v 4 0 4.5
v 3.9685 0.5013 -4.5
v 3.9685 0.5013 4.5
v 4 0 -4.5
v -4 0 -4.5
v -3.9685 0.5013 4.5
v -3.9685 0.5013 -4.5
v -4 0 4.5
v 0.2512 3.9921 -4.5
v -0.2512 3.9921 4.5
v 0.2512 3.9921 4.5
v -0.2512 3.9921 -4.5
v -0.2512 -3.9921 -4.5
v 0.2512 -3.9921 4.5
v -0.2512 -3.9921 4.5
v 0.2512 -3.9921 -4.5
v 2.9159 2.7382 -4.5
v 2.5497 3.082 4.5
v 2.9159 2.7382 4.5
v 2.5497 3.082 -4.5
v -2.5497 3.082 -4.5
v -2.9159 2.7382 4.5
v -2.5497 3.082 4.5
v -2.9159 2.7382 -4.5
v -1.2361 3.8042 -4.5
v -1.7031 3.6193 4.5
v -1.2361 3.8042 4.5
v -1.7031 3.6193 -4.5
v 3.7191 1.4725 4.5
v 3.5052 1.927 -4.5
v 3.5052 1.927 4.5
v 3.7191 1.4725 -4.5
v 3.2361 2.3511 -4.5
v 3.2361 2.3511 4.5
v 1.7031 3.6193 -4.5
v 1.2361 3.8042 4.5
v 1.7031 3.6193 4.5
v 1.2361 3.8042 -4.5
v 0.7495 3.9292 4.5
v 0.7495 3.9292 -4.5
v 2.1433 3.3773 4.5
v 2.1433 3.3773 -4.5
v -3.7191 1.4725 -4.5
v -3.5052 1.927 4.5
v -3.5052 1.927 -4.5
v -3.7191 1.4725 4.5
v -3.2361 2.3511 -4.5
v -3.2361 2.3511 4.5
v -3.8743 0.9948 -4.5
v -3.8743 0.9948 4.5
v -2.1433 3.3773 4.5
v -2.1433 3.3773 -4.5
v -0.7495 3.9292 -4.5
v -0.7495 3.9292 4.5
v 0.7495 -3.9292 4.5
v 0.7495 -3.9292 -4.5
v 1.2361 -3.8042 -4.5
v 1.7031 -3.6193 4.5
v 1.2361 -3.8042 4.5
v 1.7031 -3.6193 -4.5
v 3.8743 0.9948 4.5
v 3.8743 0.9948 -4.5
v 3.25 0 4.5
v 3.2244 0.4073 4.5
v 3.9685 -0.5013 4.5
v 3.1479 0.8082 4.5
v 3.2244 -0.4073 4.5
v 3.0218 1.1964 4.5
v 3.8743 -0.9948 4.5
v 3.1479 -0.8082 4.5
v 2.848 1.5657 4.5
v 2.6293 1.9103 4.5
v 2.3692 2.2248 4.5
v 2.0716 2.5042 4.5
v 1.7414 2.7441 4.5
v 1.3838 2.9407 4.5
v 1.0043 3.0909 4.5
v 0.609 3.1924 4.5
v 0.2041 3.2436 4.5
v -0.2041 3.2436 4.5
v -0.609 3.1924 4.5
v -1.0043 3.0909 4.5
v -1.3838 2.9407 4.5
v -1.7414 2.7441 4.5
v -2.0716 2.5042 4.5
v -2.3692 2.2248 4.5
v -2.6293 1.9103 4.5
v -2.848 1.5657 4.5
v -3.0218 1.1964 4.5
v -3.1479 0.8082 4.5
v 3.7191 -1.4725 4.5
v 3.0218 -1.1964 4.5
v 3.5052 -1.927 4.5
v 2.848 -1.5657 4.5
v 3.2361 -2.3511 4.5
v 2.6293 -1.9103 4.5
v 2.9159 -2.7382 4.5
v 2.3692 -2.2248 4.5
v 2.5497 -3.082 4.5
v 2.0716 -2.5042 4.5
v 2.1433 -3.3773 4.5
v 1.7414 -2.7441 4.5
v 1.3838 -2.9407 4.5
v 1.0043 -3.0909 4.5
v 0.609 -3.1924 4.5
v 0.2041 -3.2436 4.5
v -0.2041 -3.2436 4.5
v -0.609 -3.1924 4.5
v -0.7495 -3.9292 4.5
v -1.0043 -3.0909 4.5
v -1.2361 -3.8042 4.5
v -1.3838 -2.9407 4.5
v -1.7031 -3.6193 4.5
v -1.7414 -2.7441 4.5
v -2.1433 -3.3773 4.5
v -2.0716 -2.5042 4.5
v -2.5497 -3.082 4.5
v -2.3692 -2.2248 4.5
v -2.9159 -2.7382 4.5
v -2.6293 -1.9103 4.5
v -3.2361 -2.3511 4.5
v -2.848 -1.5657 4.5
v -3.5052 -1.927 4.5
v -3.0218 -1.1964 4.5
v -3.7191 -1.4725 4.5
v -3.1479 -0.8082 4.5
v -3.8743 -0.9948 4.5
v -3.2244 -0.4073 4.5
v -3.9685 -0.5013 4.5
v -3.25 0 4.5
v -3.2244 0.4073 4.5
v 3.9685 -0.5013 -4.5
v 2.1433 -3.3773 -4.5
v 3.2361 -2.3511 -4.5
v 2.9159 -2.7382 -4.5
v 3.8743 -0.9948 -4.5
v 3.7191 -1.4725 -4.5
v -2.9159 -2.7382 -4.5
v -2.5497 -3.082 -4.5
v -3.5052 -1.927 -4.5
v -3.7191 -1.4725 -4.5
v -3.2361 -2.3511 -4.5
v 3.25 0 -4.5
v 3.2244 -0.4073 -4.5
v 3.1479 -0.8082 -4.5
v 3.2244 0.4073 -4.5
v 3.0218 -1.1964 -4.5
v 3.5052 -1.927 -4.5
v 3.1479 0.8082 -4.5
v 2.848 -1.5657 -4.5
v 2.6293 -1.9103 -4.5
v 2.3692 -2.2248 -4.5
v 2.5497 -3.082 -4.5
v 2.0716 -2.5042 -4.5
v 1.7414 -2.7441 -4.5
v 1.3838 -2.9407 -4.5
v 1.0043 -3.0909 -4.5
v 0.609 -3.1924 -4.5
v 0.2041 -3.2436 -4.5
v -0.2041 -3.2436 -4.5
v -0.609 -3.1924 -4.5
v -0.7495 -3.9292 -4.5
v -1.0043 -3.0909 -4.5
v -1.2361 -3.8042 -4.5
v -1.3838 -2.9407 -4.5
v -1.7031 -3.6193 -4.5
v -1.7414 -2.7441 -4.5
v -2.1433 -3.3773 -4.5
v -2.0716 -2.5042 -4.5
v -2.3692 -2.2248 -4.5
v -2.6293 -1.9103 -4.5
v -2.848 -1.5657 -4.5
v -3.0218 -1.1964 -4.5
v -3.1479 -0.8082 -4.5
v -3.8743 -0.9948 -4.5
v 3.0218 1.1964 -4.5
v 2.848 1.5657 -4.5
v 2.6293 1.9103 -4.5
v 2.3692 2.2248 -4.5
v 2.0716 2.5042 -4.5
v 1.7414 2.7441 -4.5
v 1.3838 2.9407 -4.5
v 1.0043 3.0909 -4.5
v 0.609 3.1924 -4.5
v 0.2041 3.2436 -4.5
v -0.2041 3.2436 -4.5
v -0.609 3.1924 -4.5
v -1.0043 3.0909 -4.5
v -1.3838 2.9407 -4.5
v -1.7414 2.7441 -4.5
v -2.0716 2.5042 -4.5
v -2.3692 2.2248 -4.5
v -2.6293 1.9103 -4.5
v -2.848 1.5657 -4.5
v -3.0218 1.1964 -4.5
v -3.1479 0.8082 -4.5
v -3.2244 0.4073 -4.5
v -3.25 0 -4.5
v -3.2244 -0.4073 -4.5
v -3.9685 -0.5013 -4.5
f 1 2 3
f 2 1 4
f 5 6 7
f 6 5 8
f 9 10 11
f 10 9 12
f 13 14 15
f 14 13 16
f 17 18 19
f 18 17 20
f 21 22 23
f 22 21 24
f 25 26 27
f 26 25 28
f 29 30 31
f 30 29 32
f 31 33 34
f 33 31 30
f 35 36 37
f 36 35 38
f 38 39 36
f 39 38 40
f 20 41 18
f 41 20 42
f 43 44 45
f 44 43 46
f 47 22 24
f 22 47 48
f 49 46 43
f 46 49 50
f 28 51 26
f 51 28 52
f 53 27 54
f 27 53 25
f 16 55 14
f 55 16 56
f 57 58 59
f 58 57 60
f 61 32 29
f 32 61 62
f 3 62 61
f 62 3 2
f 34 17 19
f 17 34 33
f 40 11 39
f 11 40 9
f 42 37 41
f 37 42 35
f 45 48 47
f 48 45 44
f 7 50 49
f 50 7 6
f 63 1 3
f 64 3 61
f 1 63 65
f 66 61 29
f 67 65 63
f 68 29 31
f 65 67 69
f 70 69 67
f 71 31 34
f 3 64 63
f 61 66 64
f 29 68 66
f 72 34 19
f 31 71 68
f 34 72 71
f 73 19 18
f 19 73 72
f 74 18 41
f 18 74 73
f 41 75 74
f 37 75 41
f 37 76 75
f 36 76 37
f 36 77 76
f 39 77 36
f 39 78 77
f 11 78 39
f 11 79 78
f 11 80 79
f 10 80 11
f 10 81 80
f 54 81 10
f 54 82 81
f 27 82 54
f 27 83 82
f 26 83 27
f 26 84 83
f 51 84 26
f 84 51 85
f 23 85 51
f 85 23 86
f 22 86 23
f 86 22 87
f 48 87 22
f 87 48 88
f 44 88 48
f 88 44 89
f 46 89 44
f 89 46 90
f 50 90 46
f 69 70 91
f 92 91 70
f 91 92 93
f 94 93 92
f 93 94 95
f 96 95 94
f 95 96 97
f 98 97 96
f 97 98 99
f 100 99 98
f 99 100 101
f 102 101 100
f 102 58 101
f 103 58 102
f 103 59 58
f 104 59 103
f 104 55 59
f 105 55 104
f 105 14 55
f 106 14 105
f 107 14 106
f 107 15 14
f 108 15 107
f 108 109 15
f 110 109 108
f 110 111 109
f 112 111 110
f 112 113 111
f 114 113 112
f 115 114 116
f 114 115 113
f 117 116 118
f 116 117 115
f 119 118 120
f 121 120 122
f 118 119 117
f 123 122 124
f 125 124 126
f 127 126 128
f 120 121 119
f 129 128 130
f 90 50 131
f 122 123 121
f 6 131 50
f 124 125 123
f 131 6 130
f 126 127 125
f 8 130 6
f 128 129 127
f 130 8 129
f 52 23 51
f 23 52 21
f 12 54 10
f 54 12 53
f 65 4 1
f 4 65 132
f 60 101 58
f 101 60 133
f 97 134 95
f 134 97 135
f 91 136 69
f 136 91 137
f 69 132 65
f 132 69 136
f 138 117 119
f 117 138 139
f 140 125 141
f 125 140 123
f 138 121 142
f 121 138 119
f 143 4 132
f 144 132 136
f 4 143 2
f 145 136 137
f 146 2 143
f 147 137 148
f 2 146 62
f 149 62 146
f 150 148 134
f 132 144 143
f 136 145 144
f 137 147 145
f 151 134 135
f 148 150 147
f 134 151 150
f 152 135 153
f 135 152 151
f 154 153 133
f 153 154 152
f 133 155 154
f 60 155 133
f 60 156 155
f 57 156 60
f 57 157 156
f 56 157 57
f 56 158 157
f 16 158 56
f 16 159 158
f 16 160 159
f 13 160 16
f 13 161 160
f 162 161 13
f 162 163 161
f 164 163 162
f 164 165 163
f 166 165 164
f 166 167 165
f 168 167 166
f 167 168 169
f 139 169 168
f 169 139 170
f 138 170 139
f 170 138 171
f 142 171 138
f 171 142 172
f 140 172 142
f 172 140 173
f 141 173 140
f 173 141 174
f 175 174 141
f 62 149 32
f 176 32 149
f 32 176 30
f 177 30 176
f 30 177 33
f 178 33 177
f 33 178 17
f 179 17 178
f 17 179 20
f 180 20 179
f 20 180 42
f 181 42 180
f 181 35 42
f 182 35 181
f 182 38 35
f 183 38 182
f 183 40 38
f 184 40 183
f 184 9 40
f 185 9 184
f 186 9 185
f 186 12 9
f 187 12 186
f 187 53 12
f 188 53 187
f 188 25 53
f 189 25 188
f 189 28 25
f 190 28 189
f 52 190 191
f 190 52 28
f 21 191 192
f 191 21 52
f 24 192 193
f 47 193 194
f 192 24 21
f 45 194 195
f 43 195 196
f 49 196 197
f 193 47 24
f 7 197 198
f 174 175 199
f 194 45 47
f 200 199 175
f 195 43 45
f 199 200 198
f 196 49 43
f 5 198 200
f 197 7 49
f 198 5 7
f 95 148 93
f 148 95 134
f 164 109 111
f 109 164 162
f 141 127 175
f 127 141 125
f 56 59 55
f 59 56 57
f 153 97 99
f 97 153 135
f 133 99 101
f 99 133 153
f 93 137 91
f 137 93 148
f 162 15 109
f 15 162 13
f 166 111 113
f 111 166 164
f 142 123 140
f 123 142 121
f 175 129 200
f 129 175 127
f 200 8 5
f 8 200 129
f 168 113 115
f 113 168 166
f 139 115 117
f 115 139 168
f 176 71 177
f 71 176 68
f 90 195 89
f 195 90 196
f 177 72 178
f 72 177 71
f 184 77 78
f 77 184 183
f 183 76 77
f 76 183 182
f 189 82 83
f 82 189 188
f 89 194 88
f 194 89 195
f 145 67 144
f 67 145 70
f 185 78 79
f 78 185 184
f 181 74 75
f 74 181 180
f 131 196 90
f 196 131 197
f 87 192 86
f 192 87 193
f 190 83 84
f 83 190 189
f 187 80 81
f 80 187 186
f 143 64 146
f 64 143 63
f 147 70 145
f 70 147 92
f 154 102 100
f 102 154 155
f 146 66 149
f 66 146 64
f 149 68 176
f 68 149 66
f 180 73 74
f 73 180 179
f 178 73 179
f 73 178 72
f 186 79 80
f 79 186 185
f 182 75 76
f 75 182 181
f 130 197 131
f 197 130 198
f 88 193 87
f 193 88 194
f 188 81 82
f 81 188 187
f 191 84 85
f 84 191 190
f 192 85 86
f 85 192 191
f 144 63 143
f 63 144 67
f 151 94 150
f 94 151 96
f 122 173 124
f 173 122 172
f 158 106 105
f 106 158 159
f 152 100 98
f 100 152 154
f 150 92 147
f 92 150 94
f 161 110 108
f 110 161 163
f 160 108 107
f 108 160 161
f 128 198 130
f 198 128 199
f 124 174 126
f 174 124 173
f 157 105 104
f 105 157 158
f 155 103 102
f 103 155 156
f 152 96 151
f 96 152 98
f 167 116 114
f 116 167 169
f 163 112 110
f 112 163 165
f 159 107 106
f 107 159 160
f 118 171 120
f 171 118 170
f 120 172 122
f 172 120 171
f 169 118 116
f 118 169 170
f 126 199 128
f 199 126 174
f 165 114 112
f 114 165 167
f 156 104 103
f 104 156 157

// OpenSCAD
$fn = 50;


difference() {
	union() {
		translate(v = [0, 0, -4.5000000000]) {
			cylinder(h = 9, r = 4.0000000000);
		}
	}
	union() {
		translate(v = [0, 0, -100.0000000000]) {
			cylinder(h = 200, r = 3.2500000000);
		}
	}
}
